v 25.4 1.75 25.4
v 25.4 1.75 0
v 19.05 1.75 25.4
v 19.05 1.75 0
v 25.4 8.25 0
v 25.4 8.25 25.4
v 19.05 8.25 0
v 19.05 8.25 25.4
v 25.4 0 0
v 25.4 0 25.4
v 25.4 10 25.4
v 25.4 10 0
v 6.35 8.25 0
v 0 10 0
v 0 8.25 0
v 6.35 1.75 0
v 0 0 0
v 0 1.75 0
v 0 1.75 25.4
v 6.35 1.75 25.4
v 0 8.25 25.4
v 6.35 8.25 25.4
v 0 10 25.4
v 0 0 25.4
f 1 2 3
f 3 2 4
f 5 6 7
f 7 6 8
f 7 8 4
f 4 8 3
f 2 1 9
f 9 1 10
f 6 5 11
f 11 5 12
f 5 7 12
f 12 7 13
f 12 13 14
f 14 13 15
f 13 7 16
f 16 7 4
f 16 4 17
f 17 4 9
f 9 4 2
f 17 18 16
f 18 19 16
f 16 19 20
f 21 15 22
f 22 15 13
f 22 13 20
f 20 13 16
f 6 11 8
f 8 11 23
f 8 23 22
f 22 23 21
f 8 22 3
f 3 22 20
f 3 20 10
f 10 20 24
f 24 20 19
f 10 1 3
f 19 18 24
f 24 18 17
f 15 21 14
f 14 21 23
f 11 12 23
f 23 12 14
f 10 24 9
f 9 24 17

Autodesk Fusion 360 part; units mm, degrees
sketch "Sketch1" plane through (0, 0, 0) normal (0, 1, 0) x (1, 0, 0)
  line L0 (0, 0) -> (25.4, 0)
  line L1 (25.4, 0) -> (25.4, -25.4)
  line L2 (25.4, -25.4) -> (0, -25.4)
  line L3 (0, -25.4) -> (0, 0)
  dimension "d1" = 25.4
  dimension "d2" = 25.4
extrude "Extrude1" add sketch "Sketch1" along normal blind 10 makes body 1
sketch "Sketch2" plane through (0, 10, 0) normal (0, 1, 0) x (-1, 0, 0)
  line L0 (0, 25.4) -> (-25.4, 25.4)
  line L1 (-25.4, 25.4) -> (-25.4, 0)
  line L2 (-25.4, 0) -> (0, 0)
  line L3 (0, 0) -> (0, 25.4)
sketch "Sketch3" plane through (0, 0, 0) normal (-1, 0, 0) x (0, 0, 1)
  line L0 (0, 0) -> (25.4, 0)
  line L1 (25.4, 0) -> (25.4, 10)
  line L2 (25.4, 10) -> (0, 10)
  line L3 (0, 10) -> (0, 0)
  line L4 (0, 10) -> (25.4, 10)
  line L5 (25.4, 10) -> (25.4, 8.25)
  line L6 (25.4, 8.25) -> (0, 8.25)
  line L7 (0, 8.25) -> (0, 10)
  line L8 (0, 0) -> (25.4, 0)
  line L9 (25.4, 0) -> (25.4, 1.75)
  line L10 (25.4, 1.75) -> (0, 1.75)
  line L11 (0, 1.75) -> (0, 0)
  dimension "d5" = 1.75
  dimension "d6" = 1.75
extrude "Extrude2" cut sketch "Sketch3" against normal blind 6.35 contours L1 L3 L6 L10 bodies 1
sketch "Sketch4" plane through (25.4, 0, 0) normal (1, 0, 0) x (0, 0, -1)
  line L0 (-25.4, 0) -> (0, 0)
  line L1 (0, 0) -> (0, 10)
  line L2 (0, 10) -> (-25.4, 10)
  line L3 (-25.4, 10) -> (-25.4, 0)
  line L4 (-25.4, 10) -> (0, 10)
  line L5 (0, 10) -> (0, 8.25)
  line L6 (0, 8.25) -> (-25.4, 8.25)
  line L7 (-25.4, 8.25) -> (-25.4, 10)
  line L8 (-25.4, 0) -> (0, 0)
  line L9 (0, 0) -> (0, 1.75)
  line L10 (0, 1.75) -> (-25.4, 1.75)
  line L11 (-25.4, 1.75) -> (-25.4, 0)
  dimension "d9" = 1.75
  dimension "d10" = 25.4
  dimension "d11" = 1.75
extrude "Extrude3" cut sketch "Sketch4" against normal blind 6.35 contours L1 L3 L6 L10 bodies 1
copy_body "Body->Comp1" bodies 1 removing the originals makes body 2 in component "Half inch spacer"
component "Half inch spacer" placed x (1, 0, 0) y (0, 1, 0) z (0, 0, 1) at (0, 0, 0)
